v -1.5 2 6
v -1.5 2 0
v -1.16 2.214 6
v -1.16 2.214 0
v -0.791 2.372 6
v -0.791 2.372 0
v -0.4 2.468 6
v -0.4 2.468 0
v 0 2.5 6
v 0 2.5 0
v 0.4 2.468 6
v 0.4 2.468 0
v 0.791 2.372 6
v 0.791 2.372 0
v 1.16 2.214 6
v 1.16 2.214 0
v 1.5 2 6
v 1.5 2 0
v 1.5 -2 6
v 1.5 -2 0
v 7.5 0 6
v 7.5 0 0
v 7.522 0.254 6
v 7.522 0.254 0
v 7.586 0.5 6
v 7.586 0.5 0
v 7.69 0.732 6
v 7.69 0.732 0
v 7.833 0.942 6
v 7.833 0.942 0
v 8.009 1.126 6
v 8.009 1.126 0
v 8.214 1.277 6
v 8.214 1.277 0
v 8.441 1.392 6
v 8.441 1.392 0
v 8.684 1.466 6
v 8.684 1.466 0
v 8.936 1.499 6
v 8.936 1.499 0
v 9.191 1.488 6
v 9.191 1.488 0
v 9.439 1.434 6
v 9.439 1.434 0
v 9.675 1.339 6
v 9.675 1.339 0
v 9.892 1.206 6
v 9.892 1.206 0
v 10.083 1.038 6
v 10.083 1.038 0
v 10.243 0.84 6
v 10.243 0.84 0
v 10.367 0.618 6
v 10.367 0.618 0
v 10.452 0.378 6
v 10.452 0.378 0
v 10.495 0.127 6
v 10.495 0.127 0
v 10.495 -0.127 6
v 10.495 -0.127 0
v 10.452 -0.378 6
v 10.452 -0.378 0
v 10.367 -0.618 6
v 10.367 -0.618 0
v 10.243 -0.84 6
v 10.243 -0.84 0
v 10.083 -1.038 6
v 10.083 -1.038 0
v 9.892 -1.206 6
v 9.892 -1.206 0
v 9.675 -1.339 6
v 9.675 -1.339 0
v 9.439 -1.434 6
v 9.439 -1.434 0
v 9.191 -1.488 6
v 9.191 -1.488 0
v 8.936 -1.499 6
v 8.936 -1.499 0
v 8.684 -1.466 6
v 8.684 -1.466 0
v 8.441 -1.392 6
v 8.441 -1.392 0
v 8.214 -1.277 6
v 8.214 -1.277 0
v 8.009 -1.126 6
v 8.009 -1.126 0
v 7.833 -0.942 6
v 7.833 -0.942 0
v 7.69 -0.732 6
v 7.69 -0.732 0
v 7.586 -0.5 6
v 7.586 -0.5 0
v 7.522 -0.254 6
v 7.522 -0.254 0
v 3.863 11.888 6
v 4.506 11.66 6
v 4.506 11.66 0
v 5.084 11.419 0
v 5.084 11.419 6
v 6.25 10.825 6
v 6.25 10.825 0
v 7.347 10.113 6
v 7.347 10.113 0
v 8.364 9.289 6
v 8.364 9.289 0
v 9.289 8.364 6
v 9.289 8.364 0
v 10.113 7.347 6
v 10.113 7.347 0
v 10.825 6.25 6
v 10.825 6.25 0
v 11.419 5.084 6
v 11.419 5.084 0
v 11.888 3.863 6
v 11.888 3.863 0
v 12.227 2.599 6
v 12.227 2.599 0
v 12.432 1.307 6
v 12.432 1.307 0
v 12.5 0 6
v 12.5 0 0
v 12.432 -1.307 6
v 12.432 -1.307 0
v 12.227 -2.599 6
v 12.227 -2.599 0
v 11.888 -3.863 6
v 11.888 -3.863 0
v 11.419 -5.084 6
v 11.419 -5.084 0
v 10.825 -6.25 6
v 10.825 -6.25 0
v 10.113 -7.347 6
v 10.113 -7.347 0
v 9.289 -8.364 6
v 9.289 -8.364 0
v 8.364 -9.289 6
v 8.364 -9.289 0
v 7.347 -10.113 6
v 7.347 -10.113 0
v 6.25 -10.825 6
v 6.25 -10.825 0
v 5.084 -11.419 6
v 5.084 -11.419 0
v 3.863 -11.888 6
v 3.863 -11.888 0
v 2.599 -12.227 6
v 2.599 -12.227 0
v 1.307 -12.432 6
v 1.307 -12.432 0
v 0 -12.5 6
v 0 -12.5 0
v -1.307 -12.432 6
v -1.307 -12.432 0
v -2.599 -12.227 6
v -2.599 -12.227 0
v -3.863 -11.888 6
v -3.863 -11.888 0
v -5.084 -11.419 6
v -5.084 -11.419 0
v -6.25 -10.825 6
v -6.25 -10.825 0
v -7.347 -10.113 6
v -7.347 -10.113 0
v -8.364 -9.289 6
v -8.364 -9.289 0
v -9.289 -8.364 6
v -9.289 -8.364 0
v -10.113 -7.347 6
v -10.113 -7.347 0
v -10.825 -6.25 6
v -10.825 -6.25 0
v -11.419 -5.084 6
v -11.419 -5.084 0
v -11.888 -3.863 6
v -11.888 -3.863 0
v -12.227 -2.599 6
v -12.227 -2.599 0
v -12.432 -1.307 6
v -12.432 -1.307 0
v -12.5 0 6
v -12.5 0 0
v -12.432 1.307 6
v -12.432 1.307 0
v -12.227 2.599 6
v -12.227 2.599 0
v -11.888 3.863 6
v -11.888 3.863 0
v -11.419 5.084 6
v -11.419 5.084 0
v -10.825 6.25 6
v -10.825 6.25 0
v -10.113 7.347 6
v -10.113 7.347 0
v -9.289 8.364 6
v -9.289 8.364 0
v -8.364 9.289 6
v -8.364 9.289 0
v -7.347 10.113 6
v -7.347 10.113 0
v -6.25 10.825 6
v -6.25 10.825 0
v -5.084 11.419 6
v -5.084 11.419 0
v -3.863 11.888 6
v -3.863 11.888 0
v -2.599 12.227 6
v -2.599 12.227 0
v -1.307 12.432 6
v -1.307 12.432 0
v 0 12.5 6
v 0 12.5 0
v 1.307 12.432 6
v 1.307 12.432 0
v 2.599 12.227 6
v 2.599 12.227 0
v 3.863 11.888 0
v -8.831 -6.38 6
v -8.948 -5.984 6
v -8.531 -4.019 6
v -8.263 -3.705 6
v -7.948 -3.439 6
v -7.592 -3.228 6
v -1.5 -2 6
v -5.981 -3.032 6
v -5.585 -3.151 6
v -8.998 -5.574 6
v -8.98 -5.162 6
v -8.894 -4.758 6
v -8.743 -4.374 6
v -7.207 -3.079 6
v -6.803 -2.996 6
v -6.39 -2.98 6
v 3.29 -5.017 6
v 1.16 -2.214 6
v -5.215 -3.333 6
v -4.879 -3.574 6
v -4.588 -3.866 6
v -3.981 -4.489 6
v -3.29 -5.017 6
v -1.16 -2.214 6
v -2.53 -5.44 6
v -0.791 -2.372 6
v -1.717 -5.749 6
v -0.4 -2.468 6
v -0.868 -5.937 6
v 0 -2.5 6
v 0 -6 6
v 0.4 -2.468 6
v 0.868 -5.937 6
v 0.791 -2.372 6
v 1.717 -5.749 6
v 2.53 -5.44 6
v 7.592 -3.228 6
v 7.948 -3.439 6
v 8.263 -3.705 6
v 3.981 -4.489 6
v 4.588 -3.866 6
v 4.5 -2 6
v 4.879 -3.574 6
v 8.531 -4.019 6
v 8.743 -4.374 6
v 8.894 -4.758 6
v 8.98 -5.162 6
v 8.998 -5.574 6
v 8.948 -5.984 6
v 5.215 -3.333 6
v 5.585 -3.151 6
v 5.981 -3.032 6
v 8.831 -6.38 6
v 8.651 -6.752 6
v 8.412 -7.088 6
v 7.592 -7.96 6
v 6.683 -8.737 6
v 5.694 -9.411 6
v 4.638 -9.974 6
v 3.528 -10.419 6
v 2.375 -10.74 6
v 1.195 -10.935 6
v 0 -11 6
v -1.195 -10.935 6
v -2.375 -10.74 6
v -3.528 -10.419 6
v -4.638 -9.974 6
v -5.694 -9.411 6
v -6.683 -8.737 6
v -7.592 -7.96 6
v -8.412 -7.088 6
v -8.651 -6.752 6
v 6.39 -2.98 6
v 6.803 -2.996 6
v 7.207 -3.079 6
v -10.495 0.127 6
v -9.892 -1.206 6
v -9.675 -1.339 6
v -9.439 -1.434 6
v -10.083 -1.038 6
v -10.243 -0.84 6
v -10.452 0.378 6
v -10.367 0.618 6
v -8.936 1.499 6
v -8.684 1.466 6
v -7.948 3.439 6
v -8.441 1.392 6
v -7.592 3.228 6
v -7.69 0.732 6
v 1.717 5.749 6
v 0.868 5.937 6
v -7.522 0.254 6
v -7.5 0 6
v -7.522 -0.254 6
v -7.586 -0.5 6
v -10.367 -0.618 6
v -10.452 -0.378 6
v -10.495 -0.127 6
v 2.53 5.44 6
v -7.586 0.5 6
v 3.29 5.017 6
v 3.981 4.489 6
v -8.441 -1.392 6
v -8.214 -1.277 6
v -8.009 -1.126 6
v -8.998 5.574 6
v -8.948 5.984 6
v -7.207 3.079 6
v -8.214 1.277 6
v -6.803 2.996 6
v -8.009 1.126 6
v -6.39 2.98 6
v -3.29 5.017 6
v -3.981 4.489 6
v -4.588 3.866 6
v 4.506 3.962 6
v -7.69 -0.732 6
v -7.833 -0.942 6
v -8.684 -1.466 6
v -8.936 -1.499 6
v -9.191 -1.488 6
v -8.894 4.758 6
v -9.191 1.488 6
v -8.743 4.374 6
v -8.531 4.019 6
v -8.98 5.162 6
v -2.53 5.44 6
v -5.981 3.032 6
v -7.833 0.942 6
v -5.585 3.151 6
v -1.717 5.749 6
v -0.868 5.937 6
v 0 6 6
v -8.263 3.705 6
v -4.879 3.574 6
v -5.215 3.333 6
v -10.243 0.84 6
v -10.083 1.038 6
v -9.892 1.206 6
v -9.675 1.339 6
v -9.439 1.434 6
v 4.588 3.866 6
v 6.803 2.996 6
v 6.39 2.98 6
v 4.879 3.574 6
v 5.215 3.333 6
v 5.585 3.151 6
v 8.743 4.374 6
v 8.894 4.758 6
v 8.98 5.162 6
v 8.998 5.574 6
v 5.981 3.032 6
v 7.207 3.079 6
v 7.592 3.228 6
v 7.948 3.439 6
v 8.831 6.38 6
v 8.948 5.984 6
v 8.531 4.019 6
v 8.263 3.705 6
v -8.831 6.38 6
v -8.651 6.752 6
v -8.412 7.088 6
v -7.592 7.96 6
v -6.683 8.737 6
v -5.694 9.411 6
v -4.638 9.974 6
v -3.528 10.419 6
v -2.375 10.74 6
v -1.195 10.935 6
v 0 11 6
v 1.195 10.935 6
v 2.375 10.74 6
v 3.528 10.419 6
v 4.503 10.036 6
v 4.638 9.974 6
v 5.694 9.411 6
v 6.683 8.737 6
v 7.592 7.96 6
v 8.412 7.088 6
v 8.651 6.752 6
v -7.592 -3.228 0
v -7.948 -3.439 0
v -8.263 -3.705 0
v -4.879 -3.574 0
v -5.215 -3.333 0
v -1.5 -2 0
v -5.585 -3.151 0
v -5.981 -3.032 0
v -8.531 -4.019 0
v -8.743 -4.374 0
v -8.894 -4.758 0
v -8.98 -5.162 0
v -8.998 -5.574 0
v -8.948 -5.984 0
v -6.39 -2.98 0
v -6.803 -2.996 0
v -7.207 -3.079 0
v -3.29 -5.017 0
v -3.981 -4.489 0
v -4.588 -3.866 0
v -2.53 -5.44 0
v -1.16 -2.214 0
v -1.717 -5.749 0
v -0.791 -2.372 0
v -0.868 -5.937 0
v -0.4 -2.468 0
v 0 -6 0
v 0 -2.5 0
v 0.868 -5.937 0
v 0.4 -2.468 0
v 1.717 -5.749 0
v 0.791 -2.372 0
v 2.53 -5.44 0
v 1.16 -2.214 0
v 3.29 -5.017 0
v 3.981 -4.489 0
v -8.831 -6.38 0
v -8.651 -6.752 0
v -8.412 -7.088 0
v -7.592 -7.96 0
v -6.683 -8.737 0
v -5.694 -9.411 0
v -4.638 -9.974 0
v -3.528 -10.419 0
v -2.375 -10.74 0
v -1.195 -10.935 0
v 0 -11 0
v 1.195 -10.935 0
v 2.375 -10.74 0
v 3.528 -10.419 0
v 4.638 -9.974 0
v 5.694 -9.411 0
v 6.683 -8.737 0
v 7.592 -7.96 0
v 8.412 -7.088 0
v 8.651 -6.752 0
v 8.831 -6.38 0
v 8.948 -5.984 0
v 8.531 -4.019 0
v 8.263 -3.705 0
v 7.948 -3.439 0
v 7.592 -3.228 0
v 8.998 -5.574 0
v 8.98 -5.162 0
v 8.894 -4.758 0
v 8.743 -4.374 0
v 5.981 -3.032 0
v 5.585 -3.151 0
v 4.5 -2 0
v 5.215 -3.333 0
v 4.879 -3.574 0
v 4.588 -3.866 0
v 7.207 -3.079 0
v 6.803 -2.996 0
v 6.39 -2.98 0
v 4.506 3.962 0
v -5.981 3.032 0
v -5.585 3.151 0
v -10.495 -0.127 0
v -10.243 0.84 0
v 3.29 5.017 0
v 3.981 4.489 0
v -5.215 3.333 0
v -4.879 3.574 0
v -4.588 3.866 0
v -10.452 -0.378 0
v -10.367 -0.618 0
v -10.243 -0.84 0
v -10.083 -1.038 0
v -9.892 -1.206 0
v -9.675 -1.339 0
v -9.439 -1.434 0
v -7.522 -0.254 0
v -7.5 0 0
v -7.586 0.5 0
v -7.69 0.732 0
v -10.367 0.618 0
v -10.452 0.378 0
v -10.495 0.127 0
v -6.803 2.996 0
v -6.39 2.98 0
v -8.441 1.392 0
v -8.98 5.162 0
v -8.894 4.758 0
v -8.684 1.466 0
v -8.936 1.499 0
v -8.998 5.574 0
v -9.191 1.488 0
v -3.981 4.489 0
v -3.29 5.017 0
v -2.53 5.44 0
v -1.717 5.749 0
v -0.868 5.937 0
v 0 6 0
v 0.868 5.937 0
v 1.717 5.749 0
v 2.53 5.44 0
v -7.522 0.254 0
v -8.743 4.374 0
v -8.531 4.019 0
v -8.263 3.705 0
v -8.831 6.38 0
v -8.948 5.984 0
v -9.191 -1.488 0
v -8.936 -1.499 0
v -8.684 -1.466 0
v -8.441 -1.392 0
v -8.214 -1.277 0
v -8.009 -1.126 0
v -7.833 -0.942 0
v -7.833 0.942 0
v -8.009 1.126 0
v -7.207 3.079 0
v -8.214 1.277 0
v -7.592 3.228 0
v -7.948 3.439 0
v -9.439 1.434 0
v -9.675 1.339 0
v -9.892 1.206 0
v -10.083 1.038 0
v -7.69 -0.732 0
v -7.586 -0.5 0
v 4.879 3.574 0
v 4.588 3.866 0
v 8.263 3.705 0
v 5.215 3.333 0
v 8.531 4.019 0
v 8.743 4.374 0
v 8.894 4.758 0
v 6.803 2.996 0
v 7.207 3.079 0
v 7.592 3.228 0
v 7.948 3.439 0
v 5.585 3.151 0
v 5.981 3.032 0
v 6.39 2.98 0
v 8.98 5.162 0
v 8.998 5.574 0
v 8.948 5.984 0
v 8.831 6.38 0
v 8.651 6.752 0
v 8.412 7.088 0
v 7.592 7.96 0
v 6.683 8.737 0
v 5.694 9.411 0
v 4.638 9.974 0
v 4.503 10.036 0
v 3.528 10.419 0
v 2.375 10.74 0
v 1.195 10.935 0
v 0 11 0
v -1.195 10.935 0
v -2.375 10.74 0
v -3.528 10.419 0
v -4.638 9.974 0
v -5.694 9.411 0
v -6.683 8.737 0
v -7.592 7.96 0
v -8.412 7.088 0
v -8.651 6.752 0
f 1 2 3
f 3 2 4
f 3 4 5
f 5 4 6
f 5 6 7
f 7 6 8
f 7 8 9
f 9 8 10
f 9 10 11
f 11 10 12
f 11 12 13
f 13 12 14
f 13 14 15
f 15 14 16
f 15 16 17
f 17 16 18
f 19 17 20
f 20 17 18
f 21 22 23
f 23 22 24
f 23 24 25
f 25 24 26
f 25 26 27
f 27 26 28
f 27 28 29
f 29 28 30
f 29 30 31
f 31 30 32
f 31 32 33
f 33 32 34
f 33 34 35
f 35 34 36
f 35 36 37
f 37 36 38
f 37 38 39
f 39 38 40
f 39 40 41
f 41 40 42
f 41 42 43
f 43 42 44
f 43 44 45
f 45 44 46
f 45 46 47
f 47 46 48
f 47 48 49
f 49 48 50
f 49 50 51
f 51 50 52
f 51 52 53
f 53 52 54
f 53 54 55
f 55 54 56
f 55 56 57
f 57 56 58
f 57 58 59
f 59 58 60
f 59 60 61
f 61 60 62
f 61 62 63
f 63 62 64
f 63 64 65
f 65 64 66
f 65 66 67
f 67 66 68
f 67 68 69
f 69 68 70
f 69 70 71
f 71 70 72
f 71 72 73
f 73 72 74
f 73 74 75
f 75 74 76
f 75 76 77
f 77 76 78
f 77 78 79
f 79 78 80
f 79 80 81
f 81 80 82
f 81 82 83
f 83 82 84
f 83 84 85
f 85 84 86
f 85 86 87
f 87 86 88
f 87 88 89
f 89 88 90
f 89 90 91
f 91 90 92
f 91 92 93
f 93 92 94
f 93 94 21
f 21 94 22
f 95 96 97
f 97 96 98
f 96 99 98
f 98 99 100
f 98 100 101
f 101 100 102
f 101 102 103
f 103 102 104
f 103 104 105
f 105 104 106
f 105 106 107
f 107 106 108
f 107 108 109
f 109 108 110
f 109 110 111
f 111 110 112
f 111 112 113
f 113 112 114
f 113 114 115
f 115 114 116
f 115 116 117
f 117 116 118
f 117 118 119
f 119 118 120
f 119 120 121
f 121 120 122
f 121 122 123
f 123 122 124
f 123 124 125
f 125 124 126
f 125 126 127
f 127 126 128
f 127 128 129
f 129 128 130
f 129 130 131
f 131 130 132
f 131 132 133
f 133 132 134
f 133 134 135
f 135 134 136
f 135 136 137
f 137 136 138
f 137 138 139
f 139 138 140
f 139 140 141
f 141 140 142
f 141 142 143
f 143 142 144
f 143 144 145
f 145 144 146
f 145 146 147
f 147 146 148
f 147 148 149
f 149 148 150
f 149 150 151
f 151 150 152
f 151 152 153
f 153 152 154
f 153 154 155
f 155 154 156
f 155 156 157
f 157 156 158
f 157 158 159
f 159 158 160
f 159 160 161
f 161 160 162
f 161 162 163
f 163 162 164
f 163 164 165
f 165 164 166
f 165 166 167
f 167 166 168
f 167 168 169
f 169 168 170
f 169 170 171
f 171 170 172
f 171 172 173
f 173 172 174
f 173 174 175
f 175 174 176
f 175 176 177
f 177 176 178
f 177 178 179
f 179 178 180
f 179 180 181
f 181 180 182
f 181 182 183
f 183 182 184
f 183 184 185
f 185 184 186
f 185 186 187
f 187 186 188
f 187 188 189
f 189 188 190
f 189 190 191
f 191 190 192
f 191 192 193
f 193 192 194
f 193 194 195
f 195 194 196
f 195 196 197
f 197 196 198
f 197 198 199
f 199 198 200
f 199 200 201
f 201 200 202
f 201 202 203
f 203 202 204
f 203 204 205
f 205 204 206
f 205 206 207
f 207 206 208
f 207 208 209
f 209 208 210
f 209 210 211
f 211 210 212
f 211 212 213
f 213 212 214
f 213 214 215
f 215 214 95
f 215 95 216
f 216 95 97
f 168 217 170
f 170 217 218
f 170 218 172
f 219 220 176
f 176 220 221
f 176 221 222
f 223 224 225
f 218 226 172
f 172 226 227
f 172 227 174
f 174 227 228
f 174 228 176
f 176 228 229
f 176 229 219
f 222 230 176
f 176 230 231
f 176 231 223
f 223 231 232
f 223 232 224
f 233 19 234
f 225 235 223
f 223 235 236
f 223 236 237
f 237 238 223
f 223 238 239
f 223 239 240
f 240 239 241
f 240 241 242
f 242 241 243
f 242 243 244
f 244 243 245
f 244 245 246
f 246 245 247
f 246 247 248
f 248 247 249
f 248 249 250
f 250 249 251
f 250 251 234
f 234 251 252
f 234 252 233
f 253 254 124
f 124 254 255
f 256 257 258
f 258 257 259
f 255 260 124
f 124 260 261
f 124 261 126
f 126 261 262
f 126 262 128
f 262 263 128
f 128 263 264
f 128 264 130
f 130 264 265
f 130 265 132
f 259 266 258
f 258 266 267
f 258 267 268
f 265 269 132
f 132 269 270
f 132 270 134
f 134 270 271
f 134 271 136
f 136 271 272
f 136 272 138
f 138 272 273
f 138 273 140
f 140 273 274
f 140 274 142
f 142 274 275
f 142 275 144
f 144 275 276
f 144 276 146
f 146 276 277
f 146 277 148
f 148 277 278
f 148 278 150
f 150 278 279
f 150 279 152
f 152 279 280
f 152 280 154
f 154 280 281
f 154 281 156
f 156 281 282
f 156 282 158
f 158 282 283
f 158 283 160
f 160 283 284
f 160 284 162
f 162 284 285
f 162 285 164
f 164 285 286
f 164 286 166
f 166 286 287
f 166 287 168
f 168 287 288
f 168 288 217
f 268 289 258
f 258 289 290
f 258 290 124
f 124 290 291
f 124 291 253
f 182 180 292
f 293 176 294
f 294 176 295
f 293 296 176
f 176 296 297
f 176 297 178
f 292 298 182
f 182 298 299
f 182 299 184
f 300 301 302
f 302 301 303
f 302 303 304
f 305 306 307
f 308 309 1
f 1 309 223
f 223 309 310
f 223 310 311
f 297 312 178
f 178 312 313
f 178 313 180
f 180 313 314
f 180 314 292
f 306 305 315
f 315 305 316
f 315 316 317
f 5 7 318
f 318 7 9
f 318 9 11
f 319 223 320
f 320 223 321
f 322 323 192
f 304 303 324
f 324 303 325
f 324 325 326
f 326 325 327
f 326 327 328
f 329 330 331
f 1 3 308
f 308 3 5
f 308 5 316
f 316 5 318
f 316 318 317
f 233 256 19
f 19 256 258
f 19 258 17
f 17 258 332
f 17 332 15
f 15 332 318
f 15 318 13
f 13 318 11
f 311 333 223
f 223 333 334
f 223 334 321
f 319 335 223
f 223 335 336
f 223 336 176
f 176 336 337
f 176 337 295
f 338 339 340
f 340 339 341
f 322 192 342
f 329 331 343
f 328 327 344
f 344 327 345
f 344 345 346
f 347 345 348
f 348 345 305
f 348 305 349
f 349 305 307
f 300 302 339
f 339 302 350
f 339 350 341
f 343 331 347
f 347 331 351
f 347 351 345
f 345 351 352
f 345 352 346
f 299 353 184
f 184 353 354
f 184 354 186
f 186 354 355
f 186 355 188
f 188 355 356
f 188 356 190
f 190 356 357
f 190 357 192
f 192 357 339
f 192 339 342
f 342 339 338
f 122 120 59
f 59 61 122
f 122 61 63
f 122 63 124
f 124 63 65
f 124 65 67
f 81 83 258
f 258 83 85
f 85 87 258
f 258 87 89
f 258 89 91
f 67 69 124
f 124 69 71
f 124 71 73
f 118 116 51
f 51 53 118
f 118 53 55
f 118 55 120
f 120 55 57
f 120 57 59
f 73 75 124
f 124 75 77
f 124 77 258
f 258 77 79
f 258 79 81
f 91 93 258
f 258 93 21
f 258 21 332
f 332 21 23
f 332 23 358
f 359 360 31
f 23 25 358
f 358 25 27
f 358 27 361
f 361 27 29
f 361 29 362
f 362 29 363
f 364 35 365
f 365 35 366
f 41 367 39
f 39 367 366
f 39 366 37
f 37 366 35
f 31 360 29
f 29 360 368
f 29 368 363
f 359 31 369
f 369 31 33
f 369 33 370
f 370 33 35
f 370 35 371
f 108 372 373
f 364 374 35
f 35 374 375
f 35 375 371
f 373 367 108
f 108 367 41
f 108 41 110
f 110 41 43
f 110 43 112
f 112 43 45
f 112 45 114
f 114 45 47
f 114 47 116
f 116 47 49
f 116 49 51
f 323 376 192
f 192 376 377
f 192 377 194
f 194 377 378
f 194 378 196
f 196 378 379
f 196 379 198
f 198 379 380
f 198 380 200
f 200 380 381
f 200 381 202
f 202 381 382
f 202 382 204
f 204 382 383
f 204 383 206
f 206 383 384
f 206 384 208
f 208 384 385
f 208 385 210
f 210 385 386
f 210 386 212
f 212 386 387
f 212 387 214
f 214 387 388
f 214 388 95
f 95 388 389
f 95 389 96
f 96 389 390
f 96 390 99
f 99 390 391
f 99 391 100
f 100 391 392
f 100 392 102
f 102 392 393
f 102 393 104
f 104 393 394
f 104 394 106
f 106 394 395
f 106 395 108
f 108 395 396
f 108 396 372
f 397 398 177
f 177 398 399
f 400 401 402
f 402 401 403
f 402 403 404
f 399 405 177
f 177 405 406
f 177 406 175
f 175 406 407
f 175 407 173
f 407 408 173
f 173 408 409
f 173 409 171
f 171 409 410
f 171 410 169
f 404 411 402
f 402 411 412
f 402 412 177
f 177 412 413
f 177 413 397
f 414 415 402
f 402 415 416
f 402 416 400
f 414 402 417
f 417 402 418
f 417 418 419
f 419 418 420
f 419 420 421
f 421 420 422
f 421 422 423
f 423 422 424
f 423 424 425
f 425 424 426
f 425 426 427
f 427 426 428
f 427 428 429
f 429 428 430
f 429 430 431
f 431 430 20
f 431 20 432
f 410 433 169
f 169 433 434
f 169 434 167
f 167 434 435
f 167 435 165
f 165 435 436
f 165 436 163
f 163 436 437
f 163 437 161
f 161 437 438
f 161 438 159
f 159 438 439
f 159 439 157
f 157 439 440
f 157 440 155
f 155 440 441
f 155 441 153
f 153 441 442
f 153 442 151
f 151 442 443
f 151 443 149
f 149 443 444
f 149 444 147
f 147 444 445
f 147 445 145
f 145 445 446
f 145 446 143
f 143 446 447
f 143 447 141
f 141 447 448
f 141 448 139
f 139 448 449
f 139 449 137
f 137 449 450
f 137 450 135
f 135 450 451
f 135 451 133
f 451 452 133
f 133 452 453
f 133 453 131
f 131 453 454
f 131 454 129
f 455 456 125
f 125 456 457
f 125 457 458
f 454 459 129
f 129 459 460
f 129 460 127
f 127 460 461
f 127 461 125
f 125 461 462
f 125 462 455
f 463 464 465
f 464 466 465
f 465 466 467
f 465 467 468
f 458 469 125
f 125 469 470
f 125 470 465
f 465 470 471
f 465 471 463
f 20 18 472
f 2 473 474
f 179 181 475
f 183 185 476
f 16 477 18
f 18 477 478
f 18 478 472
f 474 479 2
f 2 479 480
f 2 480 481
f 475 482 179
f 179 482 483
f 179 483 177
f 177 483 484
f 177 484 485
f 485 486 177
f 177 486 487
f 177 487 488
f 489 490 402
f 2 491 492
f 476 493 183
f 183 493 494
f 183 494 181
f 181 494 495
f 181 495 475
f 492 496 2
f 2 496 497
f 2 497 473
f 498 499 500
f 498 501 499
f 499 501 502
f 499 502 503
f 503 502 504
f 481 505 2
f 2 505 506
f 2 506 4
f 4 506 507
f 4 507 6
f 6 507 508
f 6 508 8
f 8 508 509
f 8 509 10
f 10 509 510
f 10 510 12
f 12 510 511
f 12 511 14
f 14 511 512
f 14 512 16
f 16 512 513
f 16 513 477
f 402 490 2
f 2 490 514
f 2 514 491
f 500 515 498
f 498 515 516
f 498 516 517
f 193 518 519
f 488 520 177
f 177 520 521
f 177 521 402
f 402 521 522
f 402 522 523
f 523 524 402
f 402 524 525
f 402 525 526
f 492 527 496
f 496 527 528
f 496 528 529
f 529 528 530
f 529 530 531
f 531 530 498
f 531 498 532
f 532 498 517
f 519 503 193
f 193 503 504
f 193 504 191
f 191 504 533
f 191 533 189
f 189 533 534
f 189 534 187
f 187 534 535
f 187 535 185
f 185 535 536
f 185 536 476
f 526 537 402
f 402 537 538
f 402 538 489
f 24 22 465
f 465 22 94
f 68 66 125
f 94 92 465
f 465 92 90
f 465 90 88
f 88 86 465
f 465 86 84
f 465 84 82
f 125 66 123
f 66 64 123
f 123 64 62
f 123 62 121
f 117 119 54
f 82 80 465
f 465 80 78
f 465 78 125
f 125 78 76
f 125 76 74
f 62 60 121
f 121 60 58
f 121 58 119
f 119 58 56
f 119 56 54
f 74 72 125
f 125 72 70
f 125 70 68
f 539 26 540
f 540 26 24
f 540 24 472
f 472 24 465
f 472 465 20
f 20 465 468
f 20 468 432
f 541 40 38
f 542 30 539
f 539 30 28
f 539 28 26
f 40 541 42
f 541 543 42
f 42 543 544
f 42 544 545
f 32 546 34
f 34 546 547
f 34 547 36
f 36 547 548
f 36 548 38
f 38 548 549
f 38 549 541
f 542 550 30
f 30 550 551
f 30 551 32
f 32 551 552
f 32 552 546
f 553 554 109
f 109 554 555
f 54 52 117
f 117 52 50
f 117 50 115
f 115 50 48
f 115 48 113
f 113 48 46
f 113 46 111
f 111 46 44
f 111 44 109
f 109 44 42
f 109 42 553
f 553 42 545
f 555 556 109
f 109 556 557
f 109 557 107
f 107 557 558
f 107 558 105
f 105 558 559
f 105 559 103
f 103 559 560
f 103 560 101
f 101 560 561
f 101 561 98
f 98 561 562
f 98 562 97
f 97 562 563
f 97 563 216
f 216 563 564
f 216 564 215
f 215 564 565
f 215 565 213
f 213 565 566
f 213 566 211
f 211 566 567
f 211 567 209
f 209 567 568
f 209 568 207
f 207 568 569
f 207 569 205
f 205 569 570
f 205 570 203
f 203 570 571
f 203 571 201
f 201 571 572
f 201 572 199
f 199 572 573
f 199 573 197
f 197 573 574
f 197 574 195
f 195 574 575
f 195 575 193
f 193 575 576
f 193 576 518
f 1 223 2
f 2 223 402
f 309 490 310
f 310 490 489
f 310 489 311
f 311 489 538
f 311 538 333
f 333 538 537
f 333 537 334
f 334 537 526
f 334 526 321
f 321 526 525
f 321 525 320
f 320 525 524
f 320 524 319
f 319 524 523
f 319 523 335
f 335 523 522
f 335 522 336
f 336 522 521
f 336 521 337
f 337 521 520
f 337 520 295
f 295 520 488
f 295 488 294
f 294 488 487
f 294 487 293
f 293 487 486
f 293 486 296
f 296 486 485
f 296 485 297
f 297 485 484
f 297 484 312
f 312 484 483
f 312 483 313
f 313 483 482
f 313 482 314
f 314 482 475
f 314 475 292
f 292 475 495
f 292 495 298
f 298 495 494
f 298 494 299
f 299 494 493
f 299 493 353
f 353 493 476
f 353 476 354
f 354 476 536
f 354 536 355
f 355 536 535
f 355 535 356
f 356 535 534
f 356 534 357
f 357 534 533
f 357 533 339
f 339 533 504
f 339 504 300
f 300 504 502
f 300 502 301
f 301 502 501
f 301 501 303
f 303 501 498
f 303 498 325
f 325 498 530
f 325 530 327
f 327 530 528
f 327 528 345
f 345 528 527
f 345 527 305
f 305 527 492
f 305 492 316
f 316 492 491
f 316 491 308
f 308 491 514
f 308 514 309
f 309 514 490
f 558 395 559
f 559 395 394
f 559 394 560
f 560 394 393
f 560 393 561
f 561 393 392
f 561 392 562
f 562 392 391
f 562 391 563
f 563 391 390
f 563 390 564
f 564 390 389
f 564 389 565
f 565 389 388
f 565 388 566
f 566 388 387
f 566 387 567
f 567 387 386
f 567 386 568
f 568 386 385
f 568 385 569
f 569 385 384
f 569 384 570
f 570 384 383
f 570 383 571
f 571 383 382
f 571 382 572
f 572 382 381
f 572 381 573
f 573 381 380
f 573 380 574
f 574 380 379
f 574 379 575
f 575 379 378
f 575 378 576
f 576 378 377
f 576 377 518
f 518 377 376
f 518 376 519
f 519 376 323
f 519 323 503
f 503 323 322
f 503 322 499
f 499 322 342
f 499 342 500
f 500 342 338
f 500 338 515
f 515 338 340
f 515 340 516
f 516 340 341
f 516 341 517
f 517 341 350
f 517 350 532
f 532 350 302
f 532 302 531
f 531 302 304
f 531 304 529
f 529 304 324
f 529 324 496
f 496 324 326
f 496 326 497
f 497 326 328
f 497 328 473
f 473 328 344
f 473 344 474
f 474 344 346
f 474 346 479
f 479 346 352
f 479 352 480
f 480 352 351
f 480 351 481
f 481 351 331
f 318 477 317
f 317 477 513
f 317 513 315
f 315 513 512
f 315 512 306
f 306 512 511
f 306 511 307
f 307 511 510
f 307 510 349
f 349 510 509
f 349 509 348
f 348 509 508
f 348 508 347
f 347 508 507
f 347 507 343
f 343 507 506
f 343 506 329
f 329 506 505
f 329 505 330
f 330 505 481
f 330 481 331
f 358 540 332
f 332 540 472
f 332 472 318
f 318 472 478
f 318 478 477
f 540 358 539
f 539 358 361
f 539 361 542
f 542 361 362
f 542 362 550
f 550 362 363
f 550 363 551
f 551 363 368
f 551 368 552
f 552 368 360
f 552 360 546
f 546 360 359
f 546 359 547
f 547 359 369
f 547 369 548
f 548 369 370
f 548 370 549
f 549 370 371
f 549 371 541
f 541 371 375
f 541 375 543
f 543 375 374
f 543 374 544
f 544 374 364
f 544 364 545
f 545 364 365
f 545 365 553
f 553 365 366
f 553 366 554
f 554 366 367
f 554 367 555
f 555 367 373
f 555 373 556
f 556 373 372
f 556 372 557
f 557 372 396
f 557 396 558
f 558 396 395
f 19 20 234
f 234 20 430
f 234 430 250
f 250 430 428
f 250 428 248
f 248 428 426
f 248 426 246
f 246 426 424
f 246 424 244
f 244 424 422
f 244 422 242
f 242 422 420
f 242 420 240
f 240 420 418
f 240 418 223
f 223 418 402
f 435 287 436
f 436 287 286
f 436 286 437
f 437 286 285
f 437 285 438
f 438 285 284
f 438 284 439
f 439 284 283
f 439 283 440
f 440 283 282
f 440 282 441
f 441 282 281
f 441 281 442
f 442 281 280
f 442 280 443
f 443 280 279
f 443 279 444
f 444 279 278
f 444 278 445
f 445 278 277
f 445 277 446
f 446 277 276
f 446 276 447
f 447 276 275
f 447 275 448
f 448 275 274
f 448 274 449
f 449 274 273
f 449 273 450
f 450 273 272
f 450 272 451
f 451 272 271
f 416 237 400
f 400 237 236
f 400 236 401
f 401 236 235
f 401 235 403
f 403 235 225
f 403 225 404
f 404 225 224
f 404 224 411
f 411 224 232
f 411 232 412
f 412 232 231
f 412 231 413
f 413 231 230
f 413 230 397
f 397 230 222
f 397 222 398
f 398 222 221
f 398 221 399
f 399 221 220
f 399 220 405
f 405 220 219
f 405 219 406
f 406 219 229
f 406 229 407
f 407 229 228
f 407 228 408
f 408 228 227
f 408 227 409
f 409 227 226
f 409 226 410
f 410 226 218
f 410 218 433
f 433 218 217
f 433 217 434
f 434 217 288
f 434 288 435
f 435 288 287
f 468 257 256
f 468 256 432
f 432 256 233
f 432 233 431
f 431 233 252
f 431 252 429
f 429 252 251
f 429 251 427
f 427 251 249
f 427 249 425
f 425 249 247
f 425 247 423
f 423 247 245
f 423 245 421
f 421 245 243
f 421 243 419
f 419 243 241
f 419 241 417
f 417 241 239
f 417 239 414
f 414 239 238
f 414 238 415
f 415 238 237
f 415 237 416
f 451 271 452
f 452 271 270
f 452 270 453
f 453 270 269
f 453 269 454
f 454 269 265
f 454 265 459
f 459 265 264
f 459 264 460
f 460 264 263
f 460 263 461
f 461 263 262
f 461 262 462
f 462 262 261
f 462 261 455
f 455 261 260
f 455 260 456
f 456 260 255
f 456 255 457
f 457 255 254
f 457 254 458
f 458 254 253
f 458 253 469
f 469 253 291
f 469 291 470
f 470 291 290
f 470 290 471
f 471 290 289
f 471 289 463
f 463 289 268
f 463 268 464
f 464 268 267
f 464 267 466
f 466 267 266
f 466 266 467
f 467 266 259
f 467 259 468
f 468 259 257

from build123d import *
from build123d.topology import SkipClean

# Parameters (mm, degrees)
BOSS_EXTRUDE1_DEPTH = 6
CUT_EXTRUDE1_DEPTH  = 6


with BuildPart() as part:
    # Sketch1 → Boss-Extrude1 (new body)
    with BuildSketch(Plane.XY):
        with BuildLine():
            Line((1.5, 2), (1.5, 0))
            Line((1.5, 0), (7.5, 0))
            ThreePointArc((7.5, 0), (9, 1.5), (10.5, 0))
            Line((10.5, 0), (12.5, 0))
            ThreePointArc((12.5, 0), (8.838834765, 8.838834765), (0, 12.5))
            Line((0, 12.5), (0, 2.5))
            ThreePointArc((0, 2.5), (0.790569415, 2.371708245), (1.5, 2))
        make_face()
    extrude(amount=BOSS_EXTRUDE1_DEPTH)

    # Mirror4: part across plane


with BuildPart() as part_1:
    add(part.part)
    add(part.part.mirror(Plane(origin=(0, 12.5, 6), x_dir=(0, 0, 1), z_dir=(1, 0, 0))))

    # Sketch2 → Cut-Extrude1 (cut)
    with BuildSketch(Plane.XY.offset(6)):
        with BuildLine():
            ThreePointArc((8.411764706, 7.088174274), (0, 11), (-8.411764706, 7.088174274))
            ThreePointArc((-8.411764706, 7.088174274), (-8.110948699, 3.565460869), (-4.588235294, 3.866276877))
            ThreePointArc((-4.588235294, 3.866276877), (0, 6), (4.588235294, 3.866276877))
            ThreePointArc((4.588235294, 3.866276877), (8.110948699, 3.565460869), (8.411764706, 7.088174274))
        make_face()
    extrude(amount=-CUT_EXTRUDE1_DEPTH, mode=Mode.SUBTRACT)

    # Mirror5: part across plane


with BuildPart() as part_2:
    with SkipClean():  # the faces are left unmerged after this step: merging them gives an invalid solid
        add(part_1.part)
        add(part_1.part.mirror(Plane(origin=(-1.5, 0, 6), x_dir=(0, 0, 1), z_dir=(0, 1, 0))))


solid = part_2.part
